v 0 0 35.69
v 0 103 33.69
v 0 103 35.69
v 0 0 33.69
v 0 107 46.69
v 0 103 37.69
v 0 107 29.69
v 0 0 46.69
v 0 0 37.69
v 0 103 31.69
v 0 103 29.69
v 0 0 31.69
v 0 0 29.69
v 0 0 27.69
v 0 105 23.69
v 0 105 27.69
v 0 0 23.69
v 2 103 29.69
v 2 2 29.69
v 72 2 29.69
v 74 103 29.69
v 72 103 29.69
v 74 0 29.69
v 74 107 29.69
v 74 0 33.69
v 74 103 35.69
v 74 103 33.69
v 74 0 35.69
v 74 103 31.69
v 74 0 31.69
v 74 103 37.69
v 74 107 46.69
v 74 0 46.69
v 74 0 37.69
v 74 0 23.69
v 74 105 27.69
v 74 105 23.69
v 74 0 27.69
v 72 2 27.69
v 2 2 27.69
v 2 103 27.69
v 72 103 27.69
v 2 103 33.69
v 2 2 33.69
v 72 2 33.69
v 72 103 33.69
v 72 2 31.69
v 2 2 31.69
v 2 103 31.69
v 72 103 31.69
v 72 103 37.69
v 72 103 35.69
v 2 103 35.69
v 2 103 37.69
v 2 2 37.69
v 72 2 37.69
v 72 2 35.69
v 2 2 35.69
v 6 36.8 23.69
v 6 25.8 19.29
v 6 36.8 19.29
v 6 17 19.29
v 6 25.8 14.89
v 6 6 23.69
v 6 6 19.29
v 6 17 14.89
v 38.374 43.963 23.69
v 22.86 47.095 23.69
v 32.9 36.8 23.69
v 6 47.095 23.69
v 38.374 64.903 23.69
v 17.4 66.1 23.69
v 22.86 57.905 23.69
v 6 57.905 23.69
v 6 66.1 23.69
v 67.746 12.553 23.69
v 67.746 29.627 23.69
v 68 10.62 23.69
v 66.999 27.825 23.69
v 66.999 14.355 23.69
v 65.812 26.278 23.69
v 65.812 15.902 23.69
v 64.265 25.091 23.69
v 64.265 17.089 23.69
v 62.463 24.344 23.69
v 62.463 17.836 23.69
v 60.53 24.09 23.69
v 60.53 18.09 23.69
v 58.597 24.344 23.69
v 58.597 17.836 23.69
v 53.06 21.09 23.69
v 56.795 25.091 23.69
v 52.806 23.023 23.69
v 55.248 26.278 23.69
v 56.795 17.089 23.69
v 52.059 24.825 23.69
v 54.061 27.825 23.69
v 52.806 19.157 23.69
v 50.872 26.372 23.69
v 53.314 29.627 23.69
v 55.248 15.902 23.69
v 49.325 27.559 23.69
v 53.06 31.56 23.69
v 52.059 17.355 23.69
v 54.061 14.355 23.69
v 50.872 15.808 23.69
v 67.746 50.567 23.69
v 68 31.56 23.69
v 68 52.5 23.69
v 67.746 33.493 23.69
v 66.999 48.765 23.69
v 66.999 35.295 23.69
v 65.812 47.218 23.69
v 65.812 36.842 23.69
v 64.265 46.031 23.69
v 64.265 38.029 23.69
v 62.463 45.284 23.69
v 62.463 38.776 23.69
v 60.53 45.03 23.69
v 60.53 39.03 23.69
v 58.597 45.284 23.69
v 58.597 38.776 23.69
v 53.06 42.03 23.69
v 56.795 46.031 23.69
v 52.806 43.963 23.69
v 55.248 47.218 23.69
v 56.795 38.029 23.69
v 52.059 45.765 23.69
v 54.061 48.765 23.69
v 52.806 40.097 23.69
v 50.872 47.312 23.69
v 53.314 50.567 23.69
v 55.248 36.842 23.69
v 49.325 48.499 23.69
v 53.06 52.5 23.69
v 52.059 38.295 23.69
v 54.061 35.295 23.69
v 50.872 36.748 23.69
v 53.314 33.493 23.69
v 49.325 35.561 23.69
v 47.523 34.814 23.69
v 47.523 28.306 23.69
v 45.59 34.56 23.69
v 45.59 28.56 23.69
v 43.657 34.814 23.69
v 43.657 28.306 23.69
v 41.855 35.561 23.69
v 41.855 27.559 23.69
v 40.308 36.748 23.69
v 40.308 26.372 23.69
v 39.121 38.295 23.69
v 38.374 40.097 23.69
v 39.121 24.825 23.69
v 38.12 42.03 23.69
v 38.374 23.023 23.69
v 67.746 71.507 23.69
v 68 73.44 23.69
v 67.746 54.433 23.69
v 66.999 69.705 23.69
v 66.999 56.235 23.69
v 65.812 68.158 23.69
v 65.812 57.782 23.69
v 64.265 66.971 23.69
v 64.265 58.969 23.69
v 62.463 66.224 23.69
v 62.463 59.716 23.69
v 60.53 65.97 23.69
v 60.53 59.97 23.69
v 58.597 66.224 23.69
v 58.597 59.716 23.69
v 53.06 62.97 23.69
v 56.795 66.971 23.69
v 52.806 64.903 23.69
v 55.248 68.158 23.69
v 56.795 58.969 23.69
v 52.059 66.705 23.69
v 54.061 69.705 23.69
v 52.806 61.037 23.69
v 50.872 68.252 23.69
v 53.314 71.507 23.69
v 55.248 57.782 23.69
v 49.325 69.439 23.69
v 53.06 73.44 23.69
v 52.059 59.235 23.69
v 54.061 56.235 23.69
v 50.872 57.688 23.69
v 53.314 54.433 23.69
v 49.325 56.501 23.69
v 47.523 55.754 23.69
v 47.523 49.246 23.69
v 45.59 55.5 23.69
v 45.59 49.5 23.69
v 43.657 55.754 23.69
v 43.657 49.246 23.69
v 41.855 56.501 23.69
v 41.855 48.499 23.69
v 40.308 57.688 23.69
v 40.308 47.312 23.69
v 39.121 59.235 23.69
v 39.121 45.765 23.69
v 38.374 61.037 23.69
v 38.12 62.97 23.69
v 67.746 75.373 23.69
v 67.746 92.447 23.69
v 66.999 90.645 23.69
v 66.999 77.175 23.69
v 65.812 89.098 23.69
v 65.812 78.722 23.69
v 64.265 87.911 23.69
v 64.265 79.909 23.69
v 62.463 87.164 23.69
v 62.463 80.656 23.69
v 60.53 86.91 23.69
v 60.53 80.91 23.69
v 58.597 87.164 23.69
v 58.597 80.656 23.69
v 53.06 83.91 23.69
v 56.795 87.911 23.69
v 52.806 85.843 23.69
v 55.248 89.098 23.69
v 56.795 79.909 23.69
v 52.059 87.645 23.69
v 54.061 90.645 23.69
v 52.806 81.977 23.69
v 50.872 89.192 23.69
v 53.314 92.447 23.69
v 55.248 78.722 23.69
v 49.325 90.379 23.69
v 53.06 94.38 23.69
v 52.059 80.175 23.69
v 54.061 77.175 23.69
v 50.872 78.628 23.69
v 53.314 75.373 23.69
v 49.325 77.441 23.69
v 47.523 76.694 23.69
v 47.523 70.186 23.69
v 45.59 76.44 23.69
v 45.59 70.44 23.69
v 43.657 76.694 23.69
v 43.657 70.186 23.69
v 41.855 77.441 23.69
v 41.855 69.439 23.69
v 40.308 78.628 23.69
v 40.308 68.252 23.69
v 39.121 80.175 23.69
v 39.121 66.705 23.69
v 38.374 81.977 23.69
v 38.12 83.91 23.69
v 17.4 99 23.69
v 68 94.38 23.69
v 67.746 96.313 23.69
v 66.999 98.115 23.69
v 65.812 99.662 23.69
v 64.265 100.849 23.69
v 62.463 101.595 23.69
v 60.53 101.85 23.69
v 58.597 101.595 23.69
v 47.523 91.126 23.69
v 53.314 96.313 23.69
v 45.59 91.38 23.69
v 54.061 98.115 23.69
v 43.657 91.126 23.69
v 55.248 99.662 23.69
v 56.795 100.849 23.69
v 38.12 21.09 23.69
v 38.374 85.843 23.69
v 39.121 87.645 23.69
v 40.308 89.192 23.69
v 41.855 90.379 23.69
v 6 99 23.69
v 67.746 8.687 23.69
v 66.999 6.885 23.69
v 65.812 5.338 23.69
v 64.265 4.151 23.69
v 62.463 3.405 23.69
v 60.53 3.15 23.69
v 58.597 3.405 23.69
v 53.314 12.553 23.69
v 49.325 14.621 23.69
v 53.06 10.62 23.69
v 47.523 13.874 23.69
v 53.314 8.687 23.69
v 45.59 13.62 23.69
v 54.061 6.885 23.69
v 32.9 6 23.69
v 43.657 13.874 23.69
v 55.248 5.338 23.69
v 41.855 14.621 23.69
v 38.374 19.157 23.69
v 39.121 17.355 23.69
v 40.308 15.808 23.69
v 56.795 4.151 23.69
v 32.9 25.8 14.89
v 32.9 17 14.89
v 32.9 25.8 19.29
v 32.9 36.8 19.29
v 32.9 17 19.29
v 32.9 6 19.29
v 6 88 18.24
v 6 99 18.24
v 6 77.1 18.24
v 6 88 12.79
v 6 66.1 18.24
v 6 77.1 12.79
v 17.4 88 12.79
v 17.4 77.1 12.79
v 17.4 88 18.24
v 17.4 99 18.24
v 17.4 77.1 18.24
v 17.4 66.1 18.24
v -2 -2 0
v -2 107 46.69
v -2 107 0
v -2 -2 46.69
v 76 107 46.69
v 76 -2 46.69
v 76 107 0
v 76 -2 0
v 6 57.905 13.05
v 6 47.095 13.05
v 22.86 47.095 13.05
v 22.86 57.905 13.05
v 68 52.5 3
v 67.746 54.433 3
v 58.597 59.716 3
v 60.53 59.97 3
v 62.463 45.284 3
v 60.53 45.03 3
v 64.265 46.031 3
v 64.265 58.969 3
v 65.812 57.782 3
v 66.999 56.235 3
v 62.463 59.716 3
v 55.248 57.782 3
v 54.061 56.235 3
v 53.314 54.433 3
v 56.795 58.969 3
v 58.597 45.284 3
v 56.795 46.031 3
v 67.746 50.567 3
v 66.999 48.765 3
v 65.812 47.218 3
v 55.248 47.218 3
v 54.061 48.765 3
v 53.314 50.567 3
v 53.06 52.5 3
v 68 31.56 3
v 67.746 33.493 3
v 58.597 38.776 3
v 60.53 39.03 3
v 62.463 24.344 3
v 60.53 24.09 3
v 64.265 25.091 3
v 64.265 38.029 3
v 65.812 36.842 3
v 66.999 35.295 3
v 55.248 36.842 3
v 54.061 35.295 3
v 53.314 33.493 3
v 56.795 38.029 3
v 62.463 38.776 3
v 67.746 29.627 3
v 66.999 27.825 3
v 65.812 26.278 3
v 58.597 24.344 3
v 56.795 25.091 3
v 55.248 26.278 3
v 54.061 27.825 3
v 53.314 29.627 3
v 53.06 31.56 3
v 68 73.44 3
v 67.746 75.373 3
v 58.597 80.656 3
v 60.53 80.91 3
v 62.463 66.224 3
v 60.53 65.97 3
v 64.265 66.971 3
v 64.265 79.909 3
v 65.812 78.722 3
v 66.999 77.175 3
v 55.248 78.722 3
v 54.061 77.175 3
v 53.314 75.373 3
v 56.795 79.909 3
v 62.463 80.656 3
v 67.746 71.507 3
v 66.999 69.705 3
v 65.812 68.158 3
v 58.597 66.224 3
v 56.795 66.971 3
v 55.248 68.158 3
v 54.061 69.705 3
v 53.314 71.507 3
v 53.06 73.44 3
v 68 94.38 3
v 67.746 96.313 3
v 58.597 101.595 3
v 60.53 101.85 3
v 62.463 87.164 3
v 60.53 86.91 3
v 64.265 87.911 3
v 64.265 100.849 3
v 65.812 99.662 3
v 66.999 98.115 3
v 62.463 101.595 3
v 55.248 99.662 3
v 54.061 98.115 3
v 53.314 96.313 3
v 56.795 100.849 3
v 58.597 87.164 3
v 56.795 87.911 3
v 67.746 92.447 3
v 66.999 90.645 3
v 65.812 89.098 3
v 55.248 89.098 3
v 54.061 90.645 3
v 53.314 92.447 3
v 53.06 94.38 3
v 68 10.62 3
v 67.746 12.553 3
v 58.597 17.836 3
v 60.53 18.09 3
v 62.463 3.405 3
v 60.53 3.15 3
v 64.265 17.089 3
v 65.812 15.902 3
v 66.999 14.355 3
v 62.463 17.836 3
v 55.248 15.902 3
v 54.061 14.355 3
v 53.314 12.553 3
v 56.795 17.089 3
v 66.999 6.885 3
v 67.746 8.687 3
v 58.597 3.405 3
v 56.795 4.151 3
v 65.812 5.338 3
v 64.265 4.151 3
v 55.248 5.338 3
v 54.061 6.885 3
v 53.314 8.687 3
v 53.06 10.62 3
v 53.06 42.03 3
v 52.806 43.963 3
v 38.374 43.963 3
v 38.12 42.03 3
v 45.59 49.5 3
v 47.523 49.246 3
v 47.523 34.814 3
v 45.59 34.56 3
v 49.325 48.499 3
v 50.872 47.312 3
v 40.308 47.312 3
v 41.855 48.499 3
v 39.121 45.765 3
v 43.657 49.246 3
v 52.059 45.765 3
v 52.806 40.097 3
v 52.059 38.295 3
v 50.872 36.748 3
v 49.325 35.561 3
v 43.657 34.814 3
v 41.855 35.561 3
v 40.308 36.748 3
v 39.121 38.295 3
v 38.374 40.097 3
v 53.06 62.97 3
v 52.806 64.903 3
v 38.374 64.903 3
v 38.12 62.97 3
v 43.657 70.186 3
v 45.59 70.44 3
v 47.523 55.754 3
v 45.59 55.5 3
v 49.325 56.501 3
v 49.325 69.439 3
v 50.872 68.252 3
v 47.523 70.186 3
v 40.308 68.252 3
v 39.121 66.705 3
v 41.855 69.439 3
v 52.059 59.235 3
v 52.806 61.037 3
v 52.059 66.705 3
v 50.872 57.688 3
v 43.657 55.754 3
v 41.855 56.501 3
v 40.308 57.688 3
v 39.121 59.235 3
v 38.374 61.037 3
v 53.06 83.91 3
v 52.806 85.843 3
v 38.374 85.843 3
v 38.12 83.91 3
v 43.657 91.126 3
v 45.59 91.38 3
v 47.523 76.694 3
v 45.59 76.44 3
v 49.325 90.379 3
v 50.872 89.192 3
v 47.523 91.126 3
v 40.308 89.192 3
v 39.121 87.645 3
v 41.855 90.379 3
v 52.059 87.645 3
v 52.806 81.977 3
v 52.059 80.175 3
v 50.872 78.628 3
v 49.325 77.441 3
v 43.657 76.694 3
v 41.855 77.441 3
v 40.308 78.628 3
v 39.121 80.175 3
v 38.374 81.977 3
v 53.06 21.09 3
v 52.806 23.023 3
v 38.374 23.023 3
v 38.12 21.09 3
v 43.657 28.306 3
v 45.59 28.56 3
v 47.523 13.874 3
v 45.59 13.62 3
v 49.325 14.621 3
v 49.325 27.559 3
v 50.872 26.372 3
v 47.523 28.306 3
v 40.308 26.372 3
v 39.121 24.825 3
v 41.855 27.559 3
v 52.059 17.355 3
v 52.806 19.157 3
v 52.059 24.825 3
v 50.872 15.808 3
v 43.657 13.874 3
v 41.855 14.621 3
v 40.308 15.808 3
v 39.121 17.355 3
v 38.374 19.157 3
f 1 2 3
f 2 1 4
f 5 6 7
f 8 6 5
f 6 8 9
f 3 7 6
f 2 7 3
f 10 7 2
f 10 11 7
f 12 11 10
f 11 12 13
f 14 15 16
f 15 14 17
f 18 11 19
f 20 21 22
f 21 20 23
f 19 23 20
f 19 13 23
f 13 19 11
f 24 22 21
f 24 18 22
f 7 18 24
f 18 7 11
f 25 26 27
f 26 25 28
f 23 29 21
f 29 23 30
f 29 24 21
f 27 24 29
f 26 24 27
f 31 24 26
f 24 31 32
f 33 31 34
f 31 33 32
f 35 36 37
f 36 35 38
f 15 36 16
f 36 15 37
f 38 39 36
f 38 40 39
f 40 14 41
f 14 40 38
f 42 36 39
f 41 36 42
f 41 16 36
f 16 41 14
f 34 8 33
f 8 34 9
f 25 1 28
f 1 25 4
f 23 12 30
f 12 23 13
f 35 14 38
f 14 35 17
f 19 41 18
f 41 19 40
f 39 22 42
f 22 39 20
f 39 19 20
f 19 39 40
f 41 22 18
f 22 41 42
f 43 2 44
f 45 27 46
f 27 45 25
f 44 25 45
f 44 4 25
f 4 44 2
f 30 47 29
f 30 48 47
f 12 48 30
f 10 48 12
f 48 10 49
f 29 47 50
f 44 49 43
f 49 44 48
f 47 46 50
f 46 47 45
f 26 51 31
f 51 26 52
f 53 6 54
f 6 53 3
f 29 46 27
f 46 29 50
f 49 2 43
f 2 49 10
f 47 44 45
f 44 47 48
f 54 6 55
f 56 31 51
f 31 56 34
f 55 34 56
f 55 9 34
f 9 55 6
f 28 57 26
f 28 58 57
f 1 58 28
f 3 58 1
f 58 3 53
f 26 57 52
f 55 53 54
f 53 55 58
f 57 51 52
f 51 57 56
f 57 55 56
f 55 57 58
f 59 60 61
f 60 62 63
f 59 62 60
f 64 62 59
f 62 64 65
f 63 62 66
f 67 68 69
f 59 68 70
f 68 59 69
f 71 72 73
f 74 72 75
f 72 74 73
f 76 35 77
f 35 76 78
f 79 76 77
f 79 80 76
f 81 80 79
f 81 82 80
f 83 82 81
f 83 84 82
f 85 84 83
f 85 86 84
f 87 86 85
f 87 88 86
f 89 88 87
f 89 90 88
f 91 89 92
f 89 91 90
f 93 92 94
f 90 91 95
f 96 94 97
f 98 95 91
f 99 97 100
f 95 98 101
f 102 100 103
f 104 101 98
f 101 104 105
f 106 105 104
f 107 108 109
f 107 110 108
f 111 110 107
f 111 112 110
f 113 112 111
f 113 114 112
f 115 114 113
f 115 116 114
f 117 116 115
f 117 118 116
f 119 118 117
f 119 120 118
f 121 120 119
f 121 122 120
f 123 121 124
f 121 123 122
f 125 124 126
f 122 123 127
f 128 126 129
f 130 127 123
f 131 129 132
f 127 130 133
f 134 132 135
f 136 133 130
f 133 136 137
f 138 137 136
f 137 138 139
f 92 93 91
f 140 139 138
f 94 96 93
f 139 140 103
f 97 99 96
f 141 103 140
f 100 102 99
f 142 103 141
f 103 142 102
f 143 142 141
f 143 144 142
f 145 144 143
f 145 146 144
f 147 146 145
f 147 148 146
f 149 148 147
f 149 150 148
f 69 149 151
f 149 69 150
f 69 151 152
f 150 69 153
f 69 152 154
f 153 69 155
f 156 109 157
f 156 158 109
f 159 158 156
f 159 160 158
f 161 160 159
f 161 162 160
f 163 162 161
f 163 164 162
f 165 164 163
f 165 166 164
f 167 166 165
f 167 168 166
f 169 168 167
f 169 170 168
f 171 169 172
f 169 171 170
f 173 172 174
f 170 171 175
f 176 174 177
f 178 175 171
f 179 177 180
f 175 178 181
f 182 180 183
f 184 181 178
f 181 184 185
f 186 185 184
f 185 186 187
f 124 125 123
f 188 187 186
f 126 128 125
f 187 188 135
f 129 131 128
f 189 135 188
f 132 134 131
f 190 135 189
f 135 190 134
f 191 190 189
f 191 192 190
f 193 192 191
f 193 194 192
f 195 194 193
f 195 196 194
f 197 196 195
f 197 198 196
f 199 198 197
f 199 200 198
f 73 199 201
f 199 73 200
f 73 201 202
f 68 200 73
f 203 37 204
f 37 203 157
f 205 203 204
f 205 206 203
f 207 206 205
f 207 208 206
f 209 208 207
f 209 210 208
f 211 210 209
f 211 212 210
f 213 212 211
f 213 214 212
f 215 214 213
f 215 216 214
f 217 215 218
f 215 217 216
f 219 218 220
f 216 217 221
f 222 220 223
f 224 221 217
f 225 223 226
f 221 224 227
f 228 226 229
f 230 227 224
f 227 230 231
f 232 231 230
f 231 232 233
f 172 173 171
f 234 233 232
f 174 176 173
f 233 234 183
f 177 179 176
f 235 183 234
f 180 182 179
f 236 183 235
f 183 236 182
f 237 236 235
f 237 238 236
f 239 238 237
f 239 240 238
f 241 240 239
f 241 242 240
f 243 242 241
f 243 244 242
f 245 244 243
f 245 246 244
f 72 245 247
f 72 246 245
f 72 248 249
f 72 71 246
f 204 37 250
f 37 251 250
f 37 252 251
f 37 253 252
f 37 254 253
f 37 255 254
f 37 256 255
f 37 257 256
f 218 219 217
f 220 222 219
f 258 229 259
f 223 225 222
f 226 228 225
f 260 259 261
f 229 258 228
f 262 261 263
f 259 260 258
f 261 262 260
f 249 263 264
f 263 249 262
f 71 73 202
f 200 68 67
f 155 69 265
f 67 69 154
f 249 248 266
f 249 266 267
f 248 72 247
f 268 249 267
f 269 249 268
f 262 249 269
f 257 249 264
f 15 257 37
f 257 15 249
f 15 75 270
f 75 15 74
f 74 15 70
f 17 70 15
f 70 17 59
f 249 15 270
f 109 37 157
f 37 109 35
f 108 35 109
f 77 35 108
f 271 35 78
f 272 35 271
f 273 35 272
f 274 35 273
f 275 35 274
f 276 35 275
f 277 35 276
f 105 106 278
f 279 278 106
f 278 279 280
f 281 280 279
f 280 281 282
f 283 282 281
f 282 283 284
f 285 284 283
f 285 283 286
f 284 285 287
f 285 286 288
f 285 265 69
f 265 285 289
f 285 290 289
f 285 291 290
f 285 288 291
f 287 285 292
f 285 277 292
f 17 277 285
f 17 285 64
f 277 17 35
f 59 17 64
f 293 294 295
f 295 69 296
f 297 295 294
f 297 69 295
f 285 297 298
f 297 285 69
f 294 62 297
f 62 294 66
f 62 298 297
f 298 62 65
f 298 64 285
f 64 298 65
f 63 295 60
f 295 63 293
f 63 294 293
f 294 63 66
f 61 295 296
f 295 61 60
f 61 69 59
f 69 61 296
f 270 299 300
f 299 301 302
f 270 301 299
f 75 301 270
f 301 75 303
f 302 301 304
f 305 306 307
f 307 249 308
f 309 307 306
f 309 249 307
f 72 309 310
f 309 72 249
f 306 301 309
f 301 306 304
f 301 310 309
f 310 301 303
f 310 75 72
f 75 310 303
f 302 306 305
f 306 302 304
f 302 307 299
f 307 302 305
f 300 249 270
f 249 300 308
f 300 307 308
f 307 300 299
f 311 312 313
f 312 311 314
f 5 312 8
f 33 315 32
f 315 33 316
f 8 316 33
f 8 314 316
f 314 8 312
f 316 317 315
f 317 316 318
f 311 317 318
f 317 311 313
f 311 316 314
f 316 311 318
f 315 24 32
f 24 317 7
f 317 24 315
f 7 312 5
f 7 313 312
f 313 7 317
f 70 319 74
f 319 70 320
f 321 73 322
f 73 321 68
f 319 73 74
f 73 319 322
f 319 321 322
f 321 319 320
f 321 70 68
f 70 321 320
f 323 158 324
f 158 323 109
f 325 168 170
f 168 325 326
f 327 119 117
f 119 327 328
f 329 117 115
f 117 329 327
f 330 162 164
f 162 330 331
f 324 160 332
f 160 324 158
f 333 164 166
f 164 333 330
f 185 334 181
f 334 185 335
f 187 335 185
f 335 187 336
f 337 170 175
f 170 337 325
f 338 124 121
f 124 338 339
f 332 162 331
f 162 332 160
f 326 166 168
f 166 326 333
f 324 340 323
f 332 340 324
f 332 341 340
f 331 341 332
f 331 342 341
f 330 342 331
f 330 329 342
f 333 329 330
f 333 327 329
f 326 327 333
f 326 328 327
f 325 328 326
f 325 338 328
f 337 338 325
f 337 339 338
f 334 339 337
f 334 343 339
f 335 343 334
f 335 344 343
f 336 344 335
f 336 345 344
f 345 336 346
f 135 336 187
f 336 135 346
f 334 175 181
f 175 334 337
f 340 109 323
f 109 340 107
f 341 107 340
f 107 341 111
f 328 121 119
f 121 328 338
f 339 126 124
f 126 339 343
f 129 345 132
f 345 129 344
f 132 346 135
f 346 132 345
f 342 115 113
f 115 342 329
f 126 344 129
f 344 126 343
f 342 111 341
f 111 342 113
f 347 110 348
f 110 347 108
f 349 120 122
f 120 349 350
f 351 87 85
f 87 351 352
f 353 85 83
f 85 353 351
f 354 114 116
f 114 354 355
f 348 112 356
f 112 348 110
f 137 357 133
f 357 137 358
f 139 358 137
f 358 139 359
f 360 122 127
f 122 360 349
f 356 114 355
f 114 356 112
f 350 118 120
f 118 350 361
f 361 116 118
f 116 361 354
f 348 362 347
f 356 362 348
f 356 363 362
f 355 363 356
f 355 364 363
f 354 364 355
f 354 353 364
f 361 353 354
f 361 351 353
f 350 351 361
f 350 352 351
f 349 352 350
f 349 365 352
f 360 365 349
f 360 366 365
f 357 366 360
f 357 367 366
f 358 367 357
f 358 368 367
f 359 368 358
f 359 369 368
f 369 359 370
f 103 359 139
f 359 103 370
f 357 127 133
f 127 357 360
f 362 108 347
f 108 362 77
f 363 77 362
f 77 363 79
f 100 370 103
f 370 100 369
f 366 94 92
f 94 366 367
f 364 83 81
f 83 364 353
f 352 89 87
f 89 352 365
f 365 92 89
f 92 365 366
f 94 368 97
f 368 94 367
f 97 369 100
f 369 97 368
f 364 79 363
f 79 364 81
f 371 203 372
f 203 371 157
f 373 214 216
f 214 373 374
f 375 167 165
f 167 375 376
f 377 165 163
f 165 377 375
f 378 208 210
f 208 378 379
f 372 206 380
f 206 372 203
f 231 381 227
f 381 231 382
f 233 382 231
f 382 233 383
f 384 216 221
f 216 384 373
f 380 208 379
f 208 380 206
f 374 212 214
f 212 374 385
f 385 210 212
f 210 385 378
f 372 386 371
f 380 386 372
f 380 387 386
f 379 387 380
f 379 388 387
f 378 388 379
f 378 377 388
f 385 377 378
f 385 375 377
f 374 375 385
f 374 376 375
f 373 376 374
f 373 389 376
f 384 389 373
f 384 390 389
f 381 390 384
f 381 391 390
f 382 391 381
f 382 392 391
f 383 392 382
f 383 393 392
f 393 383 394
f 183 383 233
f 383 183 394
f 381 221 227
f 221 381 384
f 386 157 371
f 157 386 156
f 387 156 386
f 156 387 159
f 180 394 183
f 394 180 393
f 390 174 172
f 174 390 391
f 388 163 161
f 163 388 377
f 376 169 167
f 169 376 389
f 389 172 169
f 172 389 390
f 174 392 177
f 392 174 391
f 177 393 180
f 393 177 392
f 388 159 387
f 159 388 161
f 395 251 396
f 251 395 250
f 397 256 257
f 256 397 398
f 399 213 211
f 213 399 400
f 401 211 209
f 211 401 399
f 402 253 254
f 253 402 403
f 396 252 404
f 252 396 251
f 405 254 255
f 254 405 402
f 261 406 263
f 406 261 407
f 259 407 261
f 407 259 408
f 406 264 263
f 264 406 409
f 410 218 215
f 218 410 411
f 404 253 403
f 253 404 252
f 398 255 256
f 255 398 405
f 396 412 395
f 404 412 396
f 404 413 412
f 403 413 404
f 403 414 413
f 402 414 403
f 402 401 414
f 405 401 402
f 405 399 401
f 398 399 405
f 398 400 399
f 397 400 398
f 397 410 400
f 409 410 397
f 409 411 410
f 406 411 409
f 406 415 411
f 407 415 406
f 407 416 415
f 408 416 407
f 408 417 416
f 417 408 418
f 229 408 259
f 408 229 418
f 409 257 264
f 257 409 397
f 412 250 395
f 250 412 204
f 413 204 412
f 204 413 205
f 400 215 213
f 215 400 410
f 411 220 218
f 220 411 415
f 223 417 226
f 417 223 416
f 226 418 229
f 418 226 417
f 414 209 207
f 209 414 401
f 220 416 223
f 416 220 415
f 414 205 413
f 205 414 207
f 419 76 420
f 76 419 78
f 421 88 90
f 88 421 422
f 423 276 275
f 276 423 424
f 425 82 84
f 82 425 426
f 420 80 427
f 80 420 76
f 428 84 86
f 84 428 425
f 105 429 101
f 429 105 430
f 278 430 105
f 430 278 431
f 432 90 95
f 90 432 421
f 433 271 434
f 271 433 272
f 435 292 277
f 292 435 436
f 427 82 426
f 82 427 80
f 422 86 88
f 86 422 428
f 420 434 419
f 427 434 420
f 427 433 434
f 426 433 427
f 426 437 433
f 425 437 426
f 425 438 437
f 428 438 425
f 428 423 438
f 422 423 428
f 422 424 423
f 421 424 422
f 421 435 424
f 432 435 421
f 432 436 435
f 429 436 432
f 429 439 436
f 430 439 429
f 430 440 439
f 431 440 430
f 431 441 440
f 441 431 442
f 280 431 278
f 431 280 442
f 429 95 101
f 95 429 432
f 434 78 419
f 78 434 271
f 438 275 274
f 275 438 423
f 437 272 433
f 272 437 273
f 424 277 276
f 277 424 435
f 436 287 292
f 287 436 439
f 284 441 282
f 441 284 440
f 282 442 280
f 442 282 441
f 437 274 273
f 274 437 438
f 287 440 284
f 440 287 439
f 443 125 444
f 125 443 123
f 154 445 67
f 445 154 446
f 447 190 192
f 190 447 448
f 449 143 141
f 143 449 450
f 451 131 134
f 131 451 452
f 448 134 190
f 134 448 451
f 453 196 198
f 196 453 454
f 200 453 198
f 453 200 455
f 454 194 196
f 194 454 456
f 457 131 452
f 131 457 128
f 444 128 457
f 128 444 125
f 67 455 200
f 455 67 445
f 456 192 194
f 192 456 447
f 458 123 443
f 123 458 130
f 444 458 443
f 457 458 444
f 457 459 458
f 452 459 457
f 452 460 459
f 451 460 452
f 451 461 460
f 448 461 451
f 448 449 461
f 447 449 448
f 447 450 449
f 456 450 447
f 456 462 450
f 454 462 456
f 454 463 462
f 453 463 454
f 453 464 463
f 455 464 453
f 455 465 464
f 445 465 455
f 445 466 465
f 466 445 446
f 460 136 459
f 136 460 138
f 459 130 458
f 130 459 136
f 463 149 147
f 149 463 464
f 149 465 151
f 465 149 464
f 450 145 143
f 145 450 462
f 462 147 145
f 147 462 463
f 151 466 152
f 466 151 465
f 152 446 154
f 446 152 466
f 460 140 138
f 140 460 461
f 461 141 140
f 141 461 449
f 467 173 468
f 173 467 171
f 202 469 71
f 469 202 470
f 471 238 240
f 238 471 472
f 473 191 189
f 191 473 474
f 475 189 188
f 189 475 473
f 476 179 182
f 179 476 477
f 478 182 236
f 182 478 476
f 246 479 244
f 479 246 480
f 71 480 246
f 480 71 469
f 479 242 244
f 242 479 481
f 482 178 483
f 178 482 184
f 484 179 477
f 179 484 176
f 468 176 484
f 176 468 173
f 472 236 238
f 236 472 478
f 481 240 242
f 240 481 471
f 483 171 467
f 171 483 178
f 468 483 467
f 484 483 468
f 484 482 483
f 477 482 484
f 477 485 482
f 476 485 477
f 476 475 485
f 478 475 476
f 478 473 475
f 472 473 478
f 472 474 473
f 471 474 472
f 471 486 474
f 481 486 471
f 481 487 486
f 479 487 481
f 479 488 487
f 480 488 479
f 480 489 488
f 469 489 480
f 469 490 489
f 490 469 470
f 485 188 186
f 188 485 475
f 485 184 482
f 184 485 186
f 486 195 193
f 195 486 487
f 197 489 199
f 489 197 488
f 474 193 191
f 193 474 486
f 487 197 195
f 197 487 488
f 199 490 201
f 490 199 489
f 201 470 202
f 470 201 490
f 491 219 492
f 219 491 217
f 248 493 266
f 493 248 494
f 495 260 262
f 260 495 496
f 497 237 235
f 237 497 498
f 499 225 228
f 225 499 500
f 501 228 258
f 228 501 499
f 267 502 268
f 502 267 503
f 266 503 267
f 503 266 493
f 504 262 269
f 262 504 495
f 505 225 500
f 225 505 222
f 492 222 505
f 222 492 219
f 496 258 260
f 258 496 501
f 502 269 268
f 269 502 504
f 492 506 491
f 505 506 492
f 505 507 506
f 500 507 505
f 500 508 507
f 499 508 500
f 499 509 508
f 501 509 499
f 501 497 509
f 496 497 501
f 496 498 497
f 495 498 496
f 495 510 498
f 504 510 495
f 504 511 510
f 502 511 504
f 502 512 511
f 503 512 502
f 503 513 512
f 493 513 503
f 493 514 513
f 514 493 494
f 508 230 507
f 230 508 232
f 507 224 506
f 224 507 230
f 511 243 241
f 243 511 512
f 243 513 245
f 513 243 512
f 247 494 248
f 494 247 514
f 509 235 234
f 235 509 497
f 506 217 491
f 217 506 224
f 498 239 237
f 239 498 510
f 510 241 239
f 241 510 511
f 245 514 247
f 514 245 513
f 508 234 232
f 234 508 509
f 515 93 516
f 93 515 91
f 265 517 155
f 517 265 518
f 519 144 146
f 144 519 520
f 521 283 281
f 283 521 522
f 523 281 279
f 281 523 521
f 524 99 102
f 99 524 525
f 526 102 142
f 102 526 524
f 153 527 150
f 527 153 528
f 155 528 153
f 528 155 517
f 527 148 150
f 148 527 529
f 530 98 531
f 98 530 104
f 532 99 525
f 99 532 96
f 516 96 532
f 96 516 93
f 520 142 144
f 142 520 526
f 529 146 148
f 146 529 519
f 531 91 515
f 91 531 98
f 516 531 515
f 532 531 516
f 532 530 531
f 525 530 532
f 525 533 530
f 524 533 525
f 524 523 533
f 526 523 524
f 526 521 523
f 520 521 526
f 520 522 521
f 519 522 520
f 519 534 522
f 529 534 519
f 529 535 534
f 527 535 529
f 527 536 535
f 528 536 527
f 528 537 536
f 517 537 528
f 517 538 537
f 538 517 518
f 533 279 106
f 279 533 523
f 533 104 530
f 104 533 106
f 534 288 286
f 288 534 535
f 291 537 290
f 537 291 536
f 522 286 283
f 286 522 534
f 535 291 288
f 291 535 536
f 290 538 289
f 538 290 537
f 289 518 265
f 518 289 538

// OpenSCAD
hourglassHeight = 25.19 + .5;
hourglassDiameter = 14.44 + .5;
hourglassProtrusionHeight = 5;
length = 74;
width = 105;
floorHeight = 3;
height = (hourglassHeight - hourglassProtrusionHeight) + floorHeight;
totalHeight = height + 23;
magnetPadding = 15;
magnetBaseInnerDiameter = 15.4;
magnetHeight = 4.0;



woodenCubeSide = 8.3 + .5;
woodenCubeBoxHeight = woodenCubeSide;
woodenCubeBoxWidth = woodenCubeSide;

largeWoodenCubeSide = 10.4 + .5;
largeWoodenCubeBoxHeight = largeWoodenCubeSide;
largeWoodenCubeBoxWidth = largeWoodenCubeSide;

wallThickness = 6;
lipThickness = 2;

fingerNotchSize = 11;
woodenCubeCount = 3;
largeWoodenCubeCount = 1;
woodenCubeBoxLength = woodenCubeSide * woodenCubeCount + .5;
largeWoodenCubeBoxLength = largeWoodenCubeSide * largeWoodenCubeCount + .5;

meepleBoxWidth = 10.31 + .5;
meepleBoxLength = 16.36 + .5;
meepleHeight = 16.14 + .5;
meepleHeightProtrusion = 6;
meepleBoxHeight = meepleHeight - meepleHeightProtrusion;



//      30 cubes, 7.85-8.1 (use woodenCubeSide) cubed
//		2 cubes, 10 cubed
//		1 player token
//			orange
//				17.25 width, 18.8 tall, 10.0 thick
//			blue
//				19.7 width, 18.7 tall, 9.95 thick
//			purple
//				17.4 width, 19.5 tall, 10.0 tall
//			white
//				17.7 width, 19.05 tall, 9.8 thick
 
//    rotate([0,0,90])
   
        
    difference() {    
        union() {
            difference(){
                translate([-lipThickness, -lipThickness, 0])
                    cube([length + lipThickness * 2, width + lipThickness * 2, totalHeight]);
                translate([0, 0, height])
                    cube([length, width, totalHeight - height]);
                
                translate([wallThickness, wallThickness, 0])
                    WoodenCubeBox();
                translate([wallThickness, width - (wallThickness + fingerNotchSize * 2 + largeWoodenCubeBoxWidth), 0])
                    LargeWoodenCubeBox();
                translate([wallThickness, width/2 - meepleBoxWidth/2, height - meepleBoxHeight])
                    cube([meepleBoxLength, meepleBoxWidth, meepleBoxHeight]);
                
                translate([
                    length - (1 * wallThickness + 1 * hourglassDiameter/2),
                    width/2,
                    floorHeight])
                    cylinder(hourglassHeight - hourglassProtrusionHeight, d=hourglassDiameter);
                translate([
                    length - (1 * wallThickness + 1 * hourglassDiameter/2),
                    width/2 - (hourglassDiameter + wallThickness),
                    floorHeight])
                    cylinder(hourglassHeight - hourglassProtrusionHeight, d=hourglassDiameter);
                translate([
                    length - (1 * wallThickness + 1 * hourglassDiameter/2),
                    width/2 + (hourglassDiameter + wallThickness),
                    floorHeight])
                    cylinder(hourglassHeight - hourglassProtrusionHeight, d=hourglassDiameter);
                translate([
                    length - (1 * wallThickness + 1 * hourglassDiameter/2),
                    width/2 + 2 * (hourglassDiameter + wallThickness),
                    floorHeight])
                    cylinder(hourglassHeight - hourglassProtrusionHeight, d=hourglassDiameter);
                translate([
                    length - (1 * wallThickness + 1 * hourglassDiameter/2),
                    width/2 - 2 * (hourglassDiameter + wallThickness),
                    floorHeight])
                    cylinder(hourglassHeight - hourglassProtrusionHeight, d=hourglassDiameter);
                    
                translate([
                    length - (1 * wallThickness + 3 * hourglassDiameter/2),
                    width/2 - (hourglassDiameter/2 + wallThickness/2),
                    floorHeight])
                    cylinder(hourglassHeight - hourglassProtrusionHeight, d=hourglassDiameter);
                translate([
                    length - (1 * wallThickness + 3 * hourglassDiameter/2),
                    width/2 + (hourglassDiameter/2 + wallThickness/2),
                    floorHeight])
                    cylinder(hourglassHeight - hourglassProtrusionHeight, d=hourglassDiameter);
                translate([
                    length - (1 * wallThickness + 3 * hourglassDiameter/2),
                    width/2 + 3 * (hourglassDiameter/2 + wallThickness/2),
                    floorHeight])
                    cylinder(hourglassHeight - hourglassProtrusionHeight, d=hourglassDiameter);
                translate([
                    length - (1 * wallThickness + 3 * hourglassDiameter/2),
                    width/2 - 3 * (hourglassDiameter/2 + wallThickness/2),
                    floorHeight])
                    cylinder(hourglassHeight - hourglassProtrusionHeight, d=hourglassDiameter);
            }
            difference(){
                translate([0, 0, hourglassHeight + 2])
                    cube([length, width, 2]);
                translate([lipThickness, lipThickness, hourglassHeight + 2])
                    cube([length - lipThickness * 2, width - lipThickness * 2, 2]);
            }
            difference(){
                translate([0, 0, hourglassHeight + 2 + 2 + 2])
                    cube([length, width, 2]);
                translate([lipThickness, lipThickness, hourglassHeight + 2 + 2 + 2])
                    cube([length - lipThickness * 2, width - lipThickness * 2, 2]);
            }
            
            difference(){
                translate([0, 0, hourglassHeight + 2 + 2 + 2 + 2 + 2])
                    cube([length, width, 2]);
                translate([lipThickness, lipThickness, hourglassHeight + 2 + 2 + 2 + 2 + 2])
                    cube([length - lipThickness * 2, width - lipThickness * 2, 2]);
            }
        }
        translate([0, width - lipThickness, floorHeight + hourglassHeight + 1])
            cube([length, wallThickness * 2, totalHeight - hourglassHeight]);
    }
    
    
    
module WoodenCubeBox()
{
    translate([0, 0, height - (woodenCubeBoxHeight/2)])
        cube([woodenCubeBoxLength, fingerNotchSize, woodenCubeBoxHeight / 2]);
    translate([0, 0 + fingerNotchSize, height - woodenCubeBoxHeight])
        cube([woodenCubeBoxLength, woodenCubeBoxWidth, woodenCubeBoxHeight]);
    translate([0, 0 + fingerNotchSize + woodenCubeBoxWidth, height - (woodenCubeBoxHeight/2)])
        cube([woodenCubeBoxLength, fingerNotchSize, woodenCubeBoxHeight / 2]);
}

module LargeWoodenCubeBox()
{
    translate([0, 0, height - (largeWoodenCubeBoxHeight/2)])
        cube([largeWoodenCubeBoxLength, fingerNotchSize, largeWoodenCubeBoxHeight / 2]);
    translate([0, 0 + fingerNotchSize, height - largeWoodenCubeBoxHeight])
        cube([largeWoodenCubeBoxLength, largeWoodenCubeBoxWidth, largeWoodenCubeBoxHeight]);
    translate([0, 0 + fingerNotchSize + largeWoodenCubeBoxWidth, height - (largeWoodenCubeBoxHeight/2)])
        cube([largeWoodenCubeBoxLength, fingerNotchSize, largeWoodenCubeBoxHeight / 2]);
}
